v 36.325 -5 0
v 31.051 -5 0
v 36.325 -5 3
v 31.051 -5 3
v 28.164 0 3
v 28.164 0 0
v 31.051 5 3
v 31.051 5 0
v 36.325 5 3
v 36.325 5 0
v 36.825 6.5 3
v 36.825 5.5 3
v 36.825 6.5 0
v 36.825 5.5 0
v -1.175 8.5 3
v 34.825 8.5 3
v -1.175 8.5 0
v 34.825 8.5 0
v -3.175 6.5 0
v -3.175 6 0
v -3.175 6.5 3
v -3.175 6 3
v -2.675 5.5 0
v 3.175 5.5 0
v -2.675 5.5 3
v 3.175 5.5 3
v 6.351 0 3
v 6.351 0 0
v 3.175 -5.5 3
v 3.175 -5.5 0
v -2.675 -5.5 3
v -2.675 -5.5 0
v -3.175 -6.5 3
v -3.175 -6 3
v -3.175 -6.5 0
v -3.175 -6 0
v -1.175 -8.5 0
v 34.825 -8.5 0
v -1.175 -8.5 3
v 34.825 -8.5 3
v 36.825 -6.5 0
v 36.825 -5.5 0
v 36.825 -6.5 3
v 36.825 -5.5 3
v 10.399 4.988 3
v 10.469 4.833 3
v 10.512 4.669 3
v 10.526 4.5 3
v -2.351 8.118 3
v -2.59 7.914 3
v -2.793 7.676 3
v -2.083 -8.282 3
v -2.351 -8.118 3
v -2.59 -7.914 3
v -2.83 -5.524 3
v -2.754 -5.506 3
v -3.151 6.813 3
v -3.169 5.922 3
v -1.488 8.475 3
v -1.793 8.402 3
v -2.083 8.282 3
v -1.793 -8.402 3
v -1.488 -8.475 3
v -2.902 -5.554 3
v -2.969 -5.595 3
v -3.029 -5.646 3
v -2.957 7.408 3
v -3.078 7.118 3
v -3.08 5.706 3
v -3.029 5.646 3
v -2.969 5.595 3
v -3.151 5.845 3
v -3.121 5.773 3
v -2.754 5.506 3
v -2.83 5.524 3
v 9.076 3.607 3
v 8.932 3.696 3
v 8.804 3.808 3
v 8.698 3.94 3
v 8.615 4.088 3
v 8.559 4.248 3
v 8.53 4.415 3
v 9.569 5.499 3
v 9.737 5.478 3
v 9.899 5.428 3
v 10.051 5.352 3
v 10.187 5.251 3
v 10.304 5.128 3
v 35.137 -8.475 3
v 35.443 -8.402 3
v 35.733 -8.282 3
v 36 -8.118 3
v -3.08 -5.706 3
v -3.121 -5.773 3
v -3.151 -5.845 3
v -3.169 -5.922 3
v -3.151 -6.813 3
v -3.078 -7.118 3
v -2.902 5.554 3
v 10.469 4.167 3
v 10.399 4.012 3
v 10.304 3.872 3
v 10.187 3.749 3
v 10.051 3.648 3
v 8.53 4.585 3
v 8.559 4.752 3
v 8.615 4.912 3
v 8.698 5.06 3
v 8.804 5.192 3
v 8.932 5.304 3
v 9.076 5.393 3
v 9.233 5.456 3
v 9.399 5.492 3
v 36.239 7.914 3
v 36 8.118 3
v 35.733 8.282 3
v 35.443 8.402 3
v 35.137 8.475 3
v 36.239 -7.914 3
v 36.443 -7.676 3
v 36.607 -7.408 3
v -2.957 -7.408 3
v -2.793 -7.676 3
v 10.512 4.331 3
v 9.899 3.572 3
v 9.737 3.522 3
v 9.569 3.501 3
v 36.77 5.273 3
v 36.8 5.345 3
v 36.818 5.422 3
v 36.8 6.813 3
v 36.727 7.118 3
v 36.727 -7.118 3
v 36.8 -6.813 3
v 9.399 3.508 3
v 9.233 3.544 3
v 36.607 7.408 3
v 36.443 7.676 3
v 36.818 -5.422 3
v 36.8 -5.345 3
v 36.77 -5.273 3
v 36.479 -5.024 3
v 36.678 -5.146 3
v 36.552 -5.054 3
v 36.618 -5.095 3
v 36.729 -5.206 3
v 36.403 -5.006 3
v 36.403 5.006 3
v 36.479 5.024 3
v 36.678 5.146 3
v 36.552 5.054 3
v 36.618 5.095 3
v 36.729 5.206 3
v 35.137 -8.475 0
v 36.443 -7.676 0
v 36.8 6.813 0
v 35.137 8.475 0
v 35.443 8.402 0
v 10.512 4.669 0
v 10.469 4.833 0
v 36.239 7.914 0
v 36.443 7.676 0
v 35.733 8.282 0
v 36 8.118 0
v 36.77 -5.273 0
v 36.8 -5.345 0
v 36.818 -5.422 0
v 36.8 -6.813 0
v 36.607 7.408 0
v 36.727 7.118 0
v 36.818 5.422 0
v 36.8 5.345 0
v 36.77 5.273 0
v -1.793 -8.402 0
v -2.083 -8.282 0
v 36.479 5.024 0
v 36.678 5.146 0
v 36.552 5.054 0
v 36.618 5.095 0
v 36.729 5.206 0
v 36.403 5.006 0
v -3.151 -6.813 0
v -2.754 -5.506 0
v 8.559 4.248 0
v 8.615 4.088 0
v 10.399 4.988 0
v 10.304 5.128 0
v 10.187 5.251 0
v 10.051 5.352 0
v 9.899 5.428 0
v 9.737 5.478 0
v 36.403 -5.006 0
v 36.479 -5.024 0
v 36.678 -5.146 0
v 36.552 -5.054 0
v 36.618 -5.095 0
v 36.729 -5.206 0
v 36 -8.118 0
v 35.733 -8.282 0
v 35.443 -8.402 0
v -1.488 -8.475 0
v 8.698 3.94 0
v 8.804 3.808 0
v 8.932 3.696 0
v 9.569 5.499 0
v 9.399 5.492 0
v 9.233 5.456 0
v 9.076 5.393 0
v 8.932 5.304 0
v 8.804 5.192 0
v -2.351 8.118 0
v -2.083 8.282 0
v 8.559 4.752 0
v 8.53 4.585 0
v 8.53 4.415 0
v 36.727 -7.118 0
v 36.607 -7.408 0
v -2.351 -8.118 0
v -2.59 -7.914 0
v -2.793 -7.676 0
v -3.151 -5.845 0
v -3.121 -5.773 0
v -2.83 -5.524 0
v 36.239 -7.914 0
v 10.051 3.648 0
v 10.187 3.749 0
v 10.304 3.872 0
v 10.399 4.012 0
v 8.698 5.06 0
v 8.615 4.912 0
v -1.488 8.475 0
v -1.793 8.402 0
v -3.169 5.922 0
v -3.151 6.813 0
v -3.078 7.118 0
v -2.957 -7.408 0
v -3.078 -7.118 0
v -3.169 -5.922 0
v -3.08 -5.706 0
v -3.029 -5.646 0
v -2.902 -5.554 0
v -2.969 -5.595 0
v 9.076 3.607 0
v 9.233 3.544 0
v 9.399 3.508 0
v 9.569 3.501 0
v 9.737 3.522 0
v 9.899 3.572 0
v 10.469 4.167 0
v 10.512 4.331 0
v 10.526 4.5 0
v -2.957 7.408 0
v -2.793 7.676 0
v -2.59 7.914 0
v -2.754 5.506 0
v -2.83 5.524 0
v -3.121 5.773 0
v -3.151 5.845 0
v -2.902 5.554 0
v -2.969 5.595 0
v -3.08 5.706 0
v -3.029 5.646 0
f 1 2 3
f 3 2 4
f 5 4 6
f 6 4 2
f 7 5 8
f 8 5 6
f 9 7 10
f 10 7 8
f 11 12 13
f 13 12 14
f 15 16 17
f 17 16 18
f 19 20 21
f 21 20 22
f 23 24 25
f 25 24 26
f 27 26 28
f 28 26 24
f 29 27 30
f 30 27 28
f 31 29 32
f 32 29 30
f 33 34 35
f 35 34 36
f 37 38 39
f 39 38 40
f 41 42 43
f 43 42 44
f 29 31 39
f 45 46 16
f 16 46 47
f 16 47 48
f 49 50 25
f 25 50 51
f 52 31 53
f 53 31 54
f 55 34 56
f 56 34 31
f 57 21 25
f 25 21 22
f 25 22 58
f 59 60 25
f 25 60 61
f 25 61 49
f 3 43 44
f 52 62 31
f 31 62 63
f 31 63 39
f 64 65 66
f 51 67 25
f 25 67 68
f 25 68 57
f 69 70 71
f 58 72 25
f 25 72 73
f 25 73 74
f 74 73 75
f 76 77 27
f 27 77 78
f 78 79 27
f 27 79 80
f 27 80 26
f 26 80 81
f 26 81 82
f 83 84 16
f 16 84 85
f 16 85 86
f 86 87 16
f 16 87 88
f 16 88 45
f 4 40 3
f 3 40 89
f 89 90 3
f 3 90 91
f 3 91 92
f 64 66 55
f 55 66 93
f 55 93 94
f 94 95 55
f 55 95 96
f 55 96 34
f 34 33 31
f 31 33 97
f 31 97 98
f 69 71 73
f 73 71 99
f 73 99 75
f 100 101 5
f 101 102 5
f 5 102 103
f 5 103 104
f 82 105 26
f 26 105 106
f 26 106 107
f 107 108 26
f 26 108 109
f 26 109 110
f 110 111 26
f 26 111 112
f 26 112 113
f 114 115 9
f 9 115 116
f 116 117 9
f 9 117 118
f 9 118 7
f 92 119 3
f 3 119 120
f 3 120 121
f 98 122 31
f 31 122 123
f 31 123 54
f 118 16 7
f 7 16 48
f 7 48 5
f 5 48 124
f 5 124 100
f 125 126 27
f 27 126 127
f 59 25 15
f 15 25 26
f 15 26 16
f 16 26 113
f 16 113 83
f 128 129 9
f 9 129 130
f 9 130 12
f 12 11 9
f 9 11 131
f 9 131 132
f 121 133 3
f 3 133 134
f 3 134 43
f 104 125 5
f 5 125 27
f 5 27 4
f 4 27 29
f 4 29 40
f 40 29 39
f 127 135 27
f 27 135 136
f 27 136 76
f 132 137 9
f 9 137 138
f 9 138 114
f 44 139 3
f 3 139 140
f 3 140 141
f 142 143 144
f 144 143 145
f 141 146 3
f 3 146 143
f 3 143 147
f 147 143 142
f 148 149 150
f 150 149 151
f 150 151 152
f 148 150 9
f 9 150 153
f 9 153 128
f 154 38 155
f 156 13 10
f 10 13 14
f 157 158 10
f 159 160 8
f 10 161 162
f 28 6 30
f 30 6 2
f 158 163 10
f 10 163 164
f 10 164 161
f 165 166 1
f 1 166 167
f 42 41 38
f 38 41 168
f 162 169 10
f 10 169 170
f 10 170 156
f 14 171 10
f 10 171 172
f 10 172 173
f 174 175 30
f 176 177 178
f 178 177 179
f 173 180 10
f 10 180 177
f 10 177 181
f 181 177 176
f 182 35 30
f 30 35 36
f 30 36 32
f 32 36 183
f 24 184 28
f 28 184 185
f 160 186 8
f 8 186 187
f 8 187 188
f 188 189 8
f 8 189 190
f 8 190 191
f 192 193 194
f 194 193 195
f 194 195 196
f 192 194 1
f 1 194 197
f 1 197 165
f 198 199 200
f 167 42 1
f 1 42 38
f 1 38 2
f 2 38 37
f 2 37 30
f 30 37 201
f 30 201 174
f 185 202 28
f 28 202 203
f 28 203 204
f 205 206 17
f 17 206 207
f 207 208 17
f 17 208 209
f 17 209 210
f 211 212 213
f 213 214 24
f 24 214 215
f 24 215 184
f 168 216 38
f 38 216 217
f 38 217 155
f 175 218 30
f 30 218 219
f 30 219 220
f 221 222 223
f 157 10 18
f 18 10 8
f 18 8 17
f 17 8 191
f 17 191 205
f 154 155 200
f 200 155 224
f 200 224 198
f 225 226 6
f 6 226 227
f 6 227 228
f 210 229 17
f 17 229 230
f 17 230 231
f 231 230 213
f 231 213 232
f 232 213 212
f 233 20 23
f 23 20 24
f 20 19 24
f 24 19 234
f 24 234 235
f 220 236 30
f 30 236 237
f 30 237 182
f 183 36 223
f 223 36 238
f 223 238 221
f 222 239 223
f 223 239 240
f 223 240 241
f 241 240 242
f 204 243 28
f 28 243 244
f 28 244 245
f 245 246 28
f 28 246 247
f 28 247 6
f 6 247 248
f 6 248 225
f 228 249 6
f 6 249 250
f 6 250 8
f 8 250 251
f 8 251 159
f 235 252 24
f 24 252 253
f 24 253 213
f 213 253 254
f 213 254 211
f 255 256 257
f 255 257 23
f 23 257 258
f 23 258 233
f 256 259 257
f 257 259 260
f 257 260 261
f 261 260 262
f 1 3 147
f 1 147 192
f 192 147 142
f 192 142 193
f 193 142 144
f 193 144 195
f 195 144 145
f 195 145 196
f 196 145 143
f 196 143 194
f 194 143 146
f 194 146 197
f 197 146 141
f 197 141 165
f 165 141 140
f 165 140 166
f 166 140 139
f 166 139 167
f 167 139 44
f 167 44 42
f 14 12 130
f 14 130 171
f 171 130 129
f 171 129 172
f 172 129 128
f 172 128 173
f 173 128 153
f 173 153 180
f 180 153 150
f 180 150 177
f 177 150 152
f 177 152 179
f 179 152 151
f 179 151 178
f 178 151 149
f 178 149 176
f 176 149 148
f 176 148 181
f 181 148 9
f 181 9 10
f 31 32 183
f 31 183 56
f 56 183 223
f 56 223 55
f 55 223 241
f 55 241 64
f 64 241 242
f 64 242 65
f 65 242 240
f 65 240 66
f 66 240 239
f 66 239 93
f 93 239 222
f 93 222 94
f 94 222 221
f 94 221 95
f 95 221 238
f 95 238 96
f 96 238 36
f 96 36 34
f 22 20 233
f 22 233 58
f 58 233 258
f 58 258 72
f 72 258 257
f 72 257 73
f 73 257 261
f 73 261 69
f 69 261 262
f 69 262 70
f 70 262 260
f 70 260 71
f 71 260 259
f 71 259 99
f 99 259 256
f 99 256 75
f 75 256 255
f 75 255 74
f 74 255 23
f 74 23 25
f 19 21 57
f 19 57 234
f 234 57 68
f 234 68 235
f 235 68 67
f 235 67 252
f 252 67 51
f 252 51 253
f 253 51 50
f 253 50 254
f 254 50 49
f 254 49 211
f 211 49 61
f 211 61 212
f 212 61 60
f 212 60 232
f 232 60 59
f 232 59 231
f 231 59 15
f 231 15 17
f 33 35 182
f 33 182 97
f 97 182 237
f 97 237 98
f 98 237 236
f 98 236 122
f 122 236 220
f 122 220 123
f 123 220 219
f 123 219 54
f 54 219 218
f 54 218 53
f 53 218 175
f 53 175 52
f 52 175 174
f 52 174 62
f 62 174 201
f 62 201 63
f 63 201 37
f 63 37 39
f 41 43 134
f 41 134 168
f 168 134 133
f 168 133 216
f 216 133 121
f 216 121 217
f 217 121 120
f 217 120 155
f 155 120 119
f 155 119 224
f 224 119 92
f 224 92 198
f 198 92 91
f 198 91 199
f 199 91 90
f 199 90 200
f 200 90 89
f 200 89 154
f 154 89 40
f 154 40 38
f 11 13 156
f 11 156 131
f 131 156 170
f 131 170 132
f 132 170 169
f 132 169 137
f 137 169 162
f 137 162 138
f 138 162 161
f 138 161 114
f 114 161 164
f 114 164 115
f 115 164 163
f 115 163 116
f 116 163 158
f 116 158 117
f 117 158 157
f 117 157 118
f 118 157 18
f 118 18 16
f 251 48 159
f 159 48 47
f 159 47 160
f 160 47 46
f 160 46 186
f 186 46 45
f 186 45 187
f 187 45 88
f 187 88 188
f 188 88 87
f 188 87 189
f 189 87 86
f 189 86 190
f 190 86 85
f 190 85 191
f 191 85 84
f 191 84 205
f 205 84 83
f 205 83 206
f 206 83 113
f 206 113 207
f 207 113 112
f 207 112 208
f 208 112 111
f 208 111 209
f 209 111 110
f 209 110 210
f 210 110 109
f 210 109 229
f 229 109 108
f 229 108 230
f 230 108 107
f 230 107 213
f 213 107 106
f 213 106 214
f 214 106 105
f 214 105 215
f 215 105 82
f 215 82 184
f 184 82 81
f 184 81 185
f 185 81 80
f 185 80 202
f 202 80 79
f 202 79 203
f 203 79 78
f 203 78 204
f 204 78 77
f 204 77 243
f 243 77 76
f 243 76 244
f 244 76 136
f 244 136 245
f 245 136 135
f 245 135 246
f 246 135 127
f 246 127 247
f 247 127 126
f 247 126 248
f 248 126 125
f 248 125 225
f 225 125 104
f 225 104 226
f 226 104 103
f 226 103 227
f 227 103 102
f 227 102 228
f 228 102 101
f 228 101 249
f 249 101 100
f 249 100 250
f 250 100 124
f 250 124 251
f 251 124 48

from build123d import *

# Parameters (mm, degrees)
BOSS_EXTRUDE1_DEPTH = 3
FILLET1_R           = 0.5
FILLET2_R           = 2
SKETCH2_R           = 1
CUT_EXTRUDE1_DEPTH  = 3


with BuildPart() as part:
    # Sketch1 → Boss-Extrude1 (new body)
    with BuildSketch(Plane.XY):
        Polygon((-3.175426481, 5.5), (3.175426481, 5.5), (6.350852961, 0), (3.175426481, -5.5), (-3.175426481, -5.5), (-3.175426481, -8.5), (36.824573519, -8.5), (36.824573519, -5), (31.051070828, -5), (28.164319482, 0), (31.051070828, 5), (36.824573519, 5), (36.824573519, 8.5), (-3.175426481, 8.5), align=None)
    extrude(amount=BOSS_EXTRUDE1_DEPTH)

    # Fillet1
    fillet1_edges = [part.edges().sort_by_distance(p)[0] for p in [
        (36.824573519, -5, 1.5),
        (-3.175426481, -5.5, 1.5),
        (-3.175426481, 5.5, 1.5),
        (36.824573519, 5, 1.5),
    ]]
    fillet(fillet1_edges, radius=FILLET1_R)

    # Fillet2
    fillet2_edges = [part.edges().sort_by_distance(p)[0] for p in [
        (36.824573519, -8.5, 1.5),
        (-3.175426481, -8.5, 1.5),
        (-3.175426481, 8.5, 1.5),
        (36.824573519, 8.5, 1.5),
    ]]
    fillet(fillet2_edges, radius=FILLET2_R)

    # Sketch2 → Cut-Extrude1 (cut)
    with BuildSketch(Plane.XY.offset(3)):
        with Locations((9.526279442, 4.5)):
            Circle(SKETCH2_R)
    extrude(amount=-CUT_EXTRUDE1_DEPTH, mode=Mode.SUBTRACT)


solid = part.part
